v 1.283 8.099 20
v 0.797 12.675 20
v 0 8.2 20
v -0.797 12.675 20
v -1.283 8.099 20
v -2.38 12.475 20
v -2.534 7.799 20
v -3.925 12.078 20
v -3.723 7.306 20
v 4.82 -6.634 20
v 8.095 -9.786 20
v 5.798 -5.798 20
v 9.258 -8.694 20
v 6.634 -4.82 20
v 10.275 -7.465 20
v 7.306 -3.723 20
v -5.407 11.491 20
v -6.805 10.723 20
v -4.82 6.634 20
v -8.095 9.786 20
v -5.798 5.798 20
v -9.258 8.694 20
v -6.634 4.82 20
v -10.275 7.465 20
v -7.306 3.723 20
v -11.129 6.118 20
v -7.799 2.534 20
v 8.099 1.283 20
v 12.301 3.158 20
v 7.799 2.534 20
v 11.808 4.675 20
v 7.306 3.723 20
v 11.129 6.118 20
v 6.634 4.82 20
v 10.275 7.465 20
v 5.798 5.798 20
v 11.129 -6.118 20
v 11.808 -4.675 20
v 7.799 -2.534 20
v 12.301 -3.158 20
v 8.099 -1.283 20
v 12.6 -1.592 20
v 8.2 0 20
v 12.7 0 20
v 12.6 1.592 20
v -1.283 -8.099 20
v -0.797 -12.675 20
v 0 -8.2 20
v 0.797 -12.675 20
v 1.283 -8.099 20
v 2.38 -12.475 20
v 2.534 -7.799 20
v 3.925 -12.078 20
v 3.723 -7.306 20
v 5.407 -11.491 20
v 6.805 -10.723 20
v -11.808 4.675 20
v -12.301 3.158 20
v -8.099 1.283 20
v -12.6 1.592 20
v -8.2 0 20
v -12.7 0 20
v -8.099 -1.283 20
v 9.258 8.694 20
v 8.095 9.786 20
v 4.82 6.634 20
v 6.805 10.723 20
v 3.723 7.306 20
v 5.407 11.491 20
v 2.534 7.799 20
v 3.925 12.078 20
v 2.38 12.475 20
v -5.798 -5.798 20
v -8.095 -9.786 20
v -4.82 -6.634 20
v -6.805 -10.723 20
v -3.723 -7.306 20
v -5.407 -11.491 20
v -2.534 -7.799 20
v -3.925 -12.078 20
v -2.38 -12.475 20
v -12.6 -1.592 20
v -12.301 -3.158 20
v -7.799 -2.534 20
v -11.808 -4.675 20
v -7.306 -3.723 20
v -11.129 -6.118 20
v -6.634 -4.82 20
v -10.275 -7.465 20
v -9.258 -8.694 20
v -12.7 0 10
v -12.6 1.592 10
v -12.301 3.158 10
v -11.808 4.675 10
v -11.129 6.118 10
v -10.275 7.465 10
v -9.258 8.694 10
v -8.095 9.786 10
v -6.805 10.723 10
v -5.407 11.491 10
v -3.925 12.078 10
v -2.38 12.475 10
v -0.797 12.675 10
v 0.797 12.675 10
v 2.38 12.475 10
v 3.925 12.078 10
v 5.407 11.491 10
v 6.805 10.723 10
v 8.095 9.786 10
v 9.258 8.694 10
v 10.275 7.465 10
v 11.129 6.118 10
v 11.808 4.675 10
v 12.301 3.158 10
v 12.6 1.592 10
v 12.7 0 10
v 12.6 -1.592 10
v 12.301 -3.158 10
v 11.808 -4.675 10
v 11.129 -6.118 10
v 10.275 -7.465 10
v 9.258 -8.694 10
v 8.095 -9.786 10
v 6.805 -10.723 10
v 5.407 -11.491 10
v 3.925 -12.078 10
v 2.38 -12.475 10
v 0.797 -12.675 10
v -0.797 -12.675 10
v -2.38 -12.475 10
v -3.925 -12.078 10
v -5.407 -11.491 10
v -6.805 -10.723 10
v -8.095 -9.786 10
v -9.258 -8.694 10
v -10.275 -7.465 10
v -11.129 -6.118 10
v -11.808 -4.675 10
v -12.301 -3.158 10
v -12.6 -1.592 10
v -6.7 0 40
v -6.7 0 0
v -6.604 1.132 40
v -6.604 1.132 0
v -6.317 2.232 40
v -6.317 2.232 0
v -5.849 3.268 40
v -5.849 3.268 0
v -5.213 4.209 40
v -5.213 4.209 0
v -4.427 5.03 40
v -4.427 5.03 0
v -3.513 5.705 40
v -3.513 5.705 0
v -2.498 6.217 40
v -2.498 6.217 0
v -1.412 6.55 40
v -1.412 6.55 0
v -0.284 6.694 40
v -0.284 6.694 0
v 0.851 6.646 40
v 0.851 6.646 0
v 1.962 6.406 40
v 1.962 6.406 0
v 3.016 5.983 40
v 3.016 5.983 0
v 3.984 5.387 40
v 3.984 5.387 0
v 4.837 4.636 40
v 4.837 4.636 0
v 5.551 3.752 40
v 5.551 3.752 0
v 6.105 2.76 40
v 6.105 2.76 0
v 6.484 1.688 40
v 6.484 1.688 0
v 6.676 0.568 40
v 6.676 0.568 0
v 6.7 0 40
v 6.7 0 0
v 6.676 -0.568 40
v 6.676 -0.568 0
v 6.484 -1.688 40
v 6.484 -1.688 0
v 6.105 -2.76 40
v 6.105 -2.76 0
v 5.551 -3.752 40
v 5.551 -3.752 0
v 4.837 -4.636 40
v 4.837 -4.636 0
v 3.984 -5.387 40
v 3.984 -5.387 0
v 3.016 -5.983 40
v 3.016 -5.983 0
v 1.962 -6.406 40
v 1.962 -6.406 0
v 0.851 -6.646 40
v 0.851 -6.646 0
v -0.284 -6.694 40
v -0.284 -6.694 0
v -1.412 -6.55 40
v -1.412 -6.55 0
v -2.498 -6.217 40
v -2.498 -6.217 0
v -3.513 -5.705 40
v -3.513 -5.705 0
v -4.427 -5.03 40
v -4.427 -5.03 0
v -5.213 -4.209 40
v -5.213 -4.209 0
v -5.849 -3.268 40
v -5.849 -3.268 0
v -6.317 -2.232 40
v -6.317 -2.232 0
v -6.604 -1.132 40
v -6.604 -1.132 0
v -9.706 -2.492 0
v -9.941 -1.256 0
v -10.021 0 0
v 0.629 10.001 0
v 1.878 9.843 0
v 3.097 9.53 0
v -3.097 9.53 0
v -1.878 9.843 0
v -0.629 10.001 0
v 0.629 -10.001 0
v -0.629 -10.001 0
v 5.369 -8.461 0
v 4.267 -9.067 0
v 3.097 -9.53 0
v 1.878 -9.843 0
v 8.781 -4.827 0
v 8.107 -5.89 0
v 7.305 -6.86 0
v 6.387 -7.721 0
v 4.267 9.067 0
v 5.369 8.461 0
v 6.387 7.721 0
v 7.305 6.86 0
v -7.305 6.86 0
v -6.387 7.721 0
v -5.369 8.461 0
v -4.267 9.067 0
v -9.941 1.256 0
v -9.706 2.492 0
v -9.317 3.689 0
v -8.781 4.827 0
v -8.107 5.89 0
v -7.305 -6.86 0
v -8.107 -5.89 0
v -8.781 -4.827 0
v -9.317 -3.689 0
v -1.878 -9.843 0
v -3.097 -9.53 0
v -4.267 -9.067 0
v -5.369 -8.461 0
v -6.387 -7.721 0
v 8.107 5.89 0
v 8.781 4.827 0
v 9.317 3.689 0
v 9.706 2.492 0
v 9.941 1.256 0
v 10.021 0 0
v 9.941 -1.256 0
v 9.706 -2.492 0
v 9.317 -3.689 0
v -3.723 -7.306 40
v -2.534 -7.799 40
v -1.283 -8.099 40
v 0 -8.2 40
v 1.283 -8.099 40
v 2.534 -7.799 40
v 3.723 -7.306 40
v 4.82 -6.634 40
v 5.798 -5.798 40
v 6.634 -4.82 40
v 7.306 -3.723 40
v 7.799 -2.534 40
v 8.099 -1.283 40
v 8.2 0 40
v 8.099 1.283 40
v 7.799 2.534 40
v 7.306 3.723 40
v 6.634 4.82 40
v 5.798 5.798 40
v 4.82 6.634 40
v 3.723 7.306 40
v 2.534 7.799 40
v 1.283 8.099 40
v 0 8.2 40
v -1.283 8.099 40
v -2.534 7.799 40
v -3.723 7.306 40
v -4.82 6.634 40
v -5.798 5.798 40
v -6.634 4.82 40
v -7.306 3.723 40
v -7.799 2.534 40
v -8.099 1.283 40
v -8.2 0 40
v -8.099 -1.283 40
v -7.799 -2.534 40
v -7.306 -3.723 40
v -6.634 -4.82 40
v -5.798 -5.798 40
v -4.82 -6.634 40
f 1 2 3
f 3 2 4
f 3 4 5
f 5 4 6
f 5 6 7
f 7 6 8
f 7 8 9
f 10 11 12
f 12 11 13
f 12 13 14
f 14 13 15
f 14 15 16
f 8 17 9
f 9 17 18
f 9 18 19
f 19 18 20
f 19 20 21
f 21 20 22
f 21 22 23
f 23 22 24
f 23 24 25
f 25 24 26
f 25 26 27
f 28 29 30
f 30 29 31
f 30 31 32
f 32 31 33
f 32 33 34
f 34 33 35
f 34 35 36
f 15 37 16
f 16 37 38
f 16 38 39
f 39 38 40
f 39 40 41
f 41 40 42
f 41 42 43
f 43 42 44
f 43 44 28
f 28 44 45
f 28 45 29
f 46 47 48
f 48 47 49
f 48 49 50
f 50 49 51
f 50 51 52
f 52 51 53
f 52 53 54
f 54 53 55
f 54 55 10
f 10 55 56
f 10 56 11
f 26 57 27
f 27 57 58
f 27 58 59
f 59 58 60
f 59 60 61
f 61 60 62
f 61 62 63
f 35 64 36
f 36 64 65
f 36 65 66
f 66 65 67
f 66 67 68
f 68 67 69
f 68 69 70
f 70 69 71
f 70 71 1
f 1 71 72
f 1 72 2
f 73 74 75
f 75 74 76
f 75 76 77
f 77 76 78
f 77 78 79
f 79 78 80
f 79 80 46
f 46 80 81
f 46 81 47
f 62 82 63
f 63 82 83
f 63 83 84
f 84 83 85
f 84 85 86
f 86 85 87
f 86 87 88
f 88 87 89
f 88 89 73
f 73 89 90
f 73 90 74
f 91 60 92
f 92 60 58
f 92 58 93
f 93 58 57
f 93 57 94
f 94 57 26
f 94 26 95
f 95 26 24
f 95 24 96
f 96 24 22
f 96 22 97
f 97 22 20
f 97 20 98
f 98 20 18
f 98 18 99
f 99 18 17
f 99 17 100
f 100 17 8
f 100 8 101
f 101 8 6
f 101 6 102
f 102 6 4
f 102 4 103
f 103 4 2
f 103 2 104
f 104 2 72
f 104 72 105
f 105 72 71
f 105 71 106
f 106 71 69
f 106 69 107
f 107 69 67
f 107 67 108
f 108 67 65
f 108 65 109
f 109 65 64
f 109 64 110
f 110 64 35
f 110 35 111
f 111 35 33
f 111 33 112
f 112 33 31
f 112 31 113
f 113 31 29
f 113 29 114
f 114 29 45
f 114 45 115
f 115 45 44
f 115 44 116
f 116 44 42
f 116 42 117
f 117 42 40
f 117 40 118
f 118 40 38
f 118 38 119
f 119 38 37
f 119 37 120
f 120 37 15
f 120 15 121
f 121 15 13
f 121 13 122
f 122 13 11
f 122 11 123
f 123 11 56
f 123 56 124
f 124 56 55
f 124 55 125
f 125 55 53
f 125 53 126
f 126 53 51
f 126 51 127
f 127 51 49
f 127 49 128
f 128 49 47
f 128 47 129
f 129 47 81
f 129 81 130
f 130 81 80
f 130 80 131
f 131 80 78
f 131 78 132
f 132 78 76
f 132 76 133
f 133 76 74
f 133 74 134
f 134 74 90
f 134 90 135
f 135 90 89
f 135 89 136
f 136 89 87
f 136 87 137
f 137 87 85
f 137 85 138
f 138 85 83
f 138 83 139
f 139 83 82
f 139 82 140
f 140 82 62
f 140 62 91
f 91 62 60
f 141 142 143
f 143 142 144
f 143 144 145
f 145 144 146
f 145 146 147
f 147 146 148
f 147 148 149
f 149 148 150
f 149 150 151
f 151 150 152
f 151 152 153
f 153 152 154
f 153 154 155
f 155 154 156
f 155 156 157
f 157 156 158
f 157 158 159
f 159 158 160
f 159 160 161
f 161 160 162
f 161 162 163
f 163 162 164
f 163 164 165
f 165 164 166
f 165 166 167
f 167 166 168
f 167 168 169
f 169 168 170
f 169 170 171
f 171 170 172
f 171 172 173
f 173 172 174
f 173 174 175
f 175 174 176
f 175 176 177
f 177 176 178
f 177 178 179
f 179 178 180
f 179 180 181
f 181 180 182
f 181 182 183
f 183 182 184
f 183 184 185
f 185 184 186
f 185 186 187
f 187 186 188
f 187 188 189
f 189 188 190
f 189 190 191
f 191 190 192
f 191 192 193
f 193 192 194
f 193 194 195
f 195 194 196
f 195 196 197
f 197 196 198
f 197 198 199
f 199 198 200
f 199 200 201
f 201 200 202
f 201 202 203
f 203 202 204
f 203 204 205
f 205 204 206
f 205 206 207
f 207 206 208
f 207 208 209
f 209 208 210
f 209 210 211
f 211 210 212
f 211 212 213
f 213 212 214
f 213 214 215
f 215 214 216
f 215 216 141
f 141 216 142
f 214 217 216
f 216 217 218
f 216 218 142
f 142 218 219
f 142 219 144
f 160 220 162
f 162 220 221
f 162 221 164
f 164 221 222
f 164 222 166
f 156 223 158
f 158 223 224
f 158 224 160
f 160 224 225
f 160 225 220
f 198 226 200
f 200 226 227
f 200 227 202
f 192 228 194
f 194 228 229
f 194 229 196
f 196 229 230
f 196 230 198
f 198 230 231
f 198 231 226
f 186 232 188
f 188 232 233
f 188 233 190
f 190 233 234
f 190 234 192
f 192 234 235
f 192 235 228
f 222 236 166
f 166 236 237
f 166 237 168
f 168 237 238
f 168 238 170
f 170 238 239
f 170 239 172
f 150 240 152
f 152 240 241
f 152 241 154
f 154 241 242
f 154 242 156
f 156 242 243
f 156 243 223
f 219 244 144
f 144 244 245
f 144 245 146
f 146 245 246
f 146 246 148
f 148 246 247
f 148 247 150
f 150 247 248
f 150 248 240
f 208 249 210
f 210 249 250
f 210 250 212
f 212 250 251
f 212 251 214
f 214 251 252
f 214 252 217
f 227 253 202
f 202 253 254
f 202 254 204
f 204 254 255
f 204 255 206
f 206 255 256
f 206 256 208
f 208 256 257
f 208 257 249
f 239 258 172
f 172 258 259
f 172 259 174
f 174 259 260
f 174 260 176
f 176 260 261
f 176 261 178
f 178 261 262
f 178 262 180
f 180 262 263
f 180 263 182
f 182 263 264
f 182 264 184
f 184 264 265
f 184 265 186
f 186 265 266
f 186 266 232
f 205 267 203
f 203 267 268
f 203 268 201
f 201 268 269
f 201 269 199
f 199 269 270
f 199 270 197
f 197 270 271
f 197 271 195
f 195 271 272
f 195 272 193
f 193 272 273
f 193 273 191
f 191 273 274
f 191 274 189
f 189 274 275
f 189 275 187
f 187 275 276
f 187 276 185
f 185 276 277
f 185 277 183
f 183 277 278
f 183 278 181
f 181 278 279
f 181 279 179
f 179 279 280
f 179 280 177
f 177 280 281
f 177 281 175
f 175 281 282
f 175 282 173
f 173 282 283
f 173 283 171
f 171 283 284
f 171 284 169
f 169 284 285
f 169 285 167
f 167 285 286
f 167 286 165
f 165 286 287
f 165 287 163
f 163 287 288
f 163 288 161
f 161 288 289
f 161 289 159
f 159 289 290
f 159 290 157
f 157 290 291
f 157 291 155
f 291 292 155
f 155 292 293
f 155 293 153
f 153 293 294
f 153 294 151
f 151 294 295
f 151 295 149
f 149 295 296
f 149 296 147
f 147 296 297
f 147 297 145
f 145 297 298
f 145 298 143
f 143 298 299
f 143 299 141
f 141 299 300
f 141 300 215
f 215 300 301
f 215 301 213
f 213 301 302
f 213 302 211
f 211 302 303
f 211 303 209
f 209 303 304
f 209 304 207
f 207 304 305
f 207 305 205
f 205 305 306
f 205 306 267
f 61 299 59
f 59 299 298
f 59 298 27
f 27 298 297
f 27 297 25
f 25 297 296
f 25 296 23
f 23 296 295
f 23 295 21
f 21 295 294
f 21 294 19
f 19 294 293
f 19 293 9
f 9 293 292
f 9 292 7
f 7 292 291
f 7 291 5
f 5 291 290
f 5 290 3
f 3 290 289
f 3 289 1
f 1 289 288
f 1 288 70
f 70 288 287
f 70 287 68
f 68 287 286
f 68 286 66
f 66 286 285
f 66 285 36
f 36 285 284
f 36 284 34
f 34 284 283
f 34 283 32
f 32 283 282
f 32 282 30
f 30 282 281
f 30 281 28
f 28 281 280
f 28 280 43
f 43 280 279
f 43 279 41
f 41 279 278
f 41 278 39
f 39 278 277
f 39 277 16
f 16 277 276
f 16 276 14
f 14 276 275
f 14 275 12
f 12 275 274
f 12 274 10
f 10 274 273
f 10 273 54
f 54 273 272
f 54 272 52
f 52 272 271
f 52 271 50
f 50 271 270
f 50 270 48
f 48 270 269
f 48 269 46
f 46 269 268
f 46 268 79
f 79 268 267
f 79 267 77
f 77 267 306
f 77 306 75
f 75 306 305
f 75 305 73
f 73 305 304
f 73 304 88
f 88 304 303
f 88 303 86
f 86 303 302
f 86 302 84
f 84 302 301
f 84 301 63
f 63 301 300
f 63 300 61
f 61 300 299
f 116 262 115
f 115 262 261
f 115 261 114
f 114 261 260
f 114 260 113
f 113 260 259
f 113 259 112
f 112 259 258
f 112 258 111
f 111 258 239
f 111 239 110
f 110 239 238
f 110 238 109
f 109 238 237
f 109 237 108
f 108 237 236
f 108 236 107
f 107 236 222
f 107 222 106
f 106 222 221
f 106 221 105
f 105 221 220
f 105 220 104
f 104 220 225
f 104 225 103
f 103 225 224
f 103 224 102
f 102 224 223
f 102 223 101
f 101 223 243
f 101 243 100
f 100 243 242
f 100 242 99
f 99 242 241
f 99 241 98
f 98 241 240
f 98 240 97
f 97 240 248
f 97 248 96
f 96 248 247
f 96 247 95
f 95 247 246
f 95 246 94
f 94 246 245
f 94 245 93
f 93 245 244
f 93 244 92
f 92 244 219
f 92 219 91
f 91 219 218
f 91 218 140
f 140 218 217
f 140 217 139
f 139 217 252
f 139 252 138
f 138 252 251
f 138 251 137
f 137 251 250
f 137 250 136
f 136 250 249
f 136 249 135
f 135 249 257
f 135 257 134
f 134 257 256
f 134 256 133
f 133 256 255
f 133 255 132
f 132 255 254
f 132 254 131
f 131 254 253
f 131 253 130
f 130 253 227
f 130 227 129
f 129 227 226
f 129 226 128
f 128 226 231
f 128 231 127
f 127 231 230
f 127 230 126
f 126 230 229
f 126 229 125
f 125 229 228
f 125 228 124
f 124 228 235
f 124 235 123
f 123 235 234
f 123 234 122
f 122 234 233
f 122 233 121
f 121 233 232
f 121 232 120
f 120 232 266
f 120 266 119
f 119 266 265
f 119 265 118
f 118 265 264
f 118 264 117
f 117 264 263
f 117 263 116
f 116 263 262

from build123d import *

# Parameters (mm, degrees)
SKETCH1_R           = 12.7
SKETCH1_R_2         = 8.2
SKETCH1_R_3         = 6.7
BOSS_EXTRUDE1_DEPTH = 20
BOSS_EXTRUDE2_START = 20
SKETCH1_4_R         = 8.2
SKETCH1_4_R_2       = 6.7
BOSS_EXTRUDE2_DEPTH = 20
CHAMFER1_SIZE       = 10
CHAMFER1_SIZE2      = 2.679491924


with BuildPart() as part:
    # Sketch1 → Boss-Extrude1 (new body)
    # profile 1 of 2: a face of its own
    with BuildSketch(Plane.XY):
        Circle(SKETCH1_R)
        Circle(SKETCH1_R_2, mode=Mode.SUBTRACT)
    # profile 2 of 2: a face of its own
    with BuildSketch(Plane.XY):
        Circle(SKETCH1_R_2)
        Circle(SKETCH1_R_3, mode=Mode.SUBTRACT)
    extrude(amount=BOSS_EXTRUDE1_DEPTH)

    # Sketch1<4> → Boss-Extrude2 (add)
    with BuildSketch(Plane.XY.offset(BOSS_EXTRUDE2_START)):
        Circle(SKETCH1_4_R)
        Circle(SKETCH1_4_R_2, mode=Mode.SUBTRACT)
    extrude(amount=BOSS_EXTRUDE2_DEPTH)

    # Chamfer1
    chamfer1_edges = [part.edges().sort_by_distance(p)[0] for p in [
        (-12.7, 0, 0),
    ]]
    chamfer1_side = [part.faces().sort_by_distance(p)[0] for p in [
        (-12.7, 0, 10),
    ]]
    chamfer(chamfer1_edges, length=CHAMFER1_SIZE, length2=CHAMFER1_SIZE2, reference=chamfer1_side[0])


solid = part.part
